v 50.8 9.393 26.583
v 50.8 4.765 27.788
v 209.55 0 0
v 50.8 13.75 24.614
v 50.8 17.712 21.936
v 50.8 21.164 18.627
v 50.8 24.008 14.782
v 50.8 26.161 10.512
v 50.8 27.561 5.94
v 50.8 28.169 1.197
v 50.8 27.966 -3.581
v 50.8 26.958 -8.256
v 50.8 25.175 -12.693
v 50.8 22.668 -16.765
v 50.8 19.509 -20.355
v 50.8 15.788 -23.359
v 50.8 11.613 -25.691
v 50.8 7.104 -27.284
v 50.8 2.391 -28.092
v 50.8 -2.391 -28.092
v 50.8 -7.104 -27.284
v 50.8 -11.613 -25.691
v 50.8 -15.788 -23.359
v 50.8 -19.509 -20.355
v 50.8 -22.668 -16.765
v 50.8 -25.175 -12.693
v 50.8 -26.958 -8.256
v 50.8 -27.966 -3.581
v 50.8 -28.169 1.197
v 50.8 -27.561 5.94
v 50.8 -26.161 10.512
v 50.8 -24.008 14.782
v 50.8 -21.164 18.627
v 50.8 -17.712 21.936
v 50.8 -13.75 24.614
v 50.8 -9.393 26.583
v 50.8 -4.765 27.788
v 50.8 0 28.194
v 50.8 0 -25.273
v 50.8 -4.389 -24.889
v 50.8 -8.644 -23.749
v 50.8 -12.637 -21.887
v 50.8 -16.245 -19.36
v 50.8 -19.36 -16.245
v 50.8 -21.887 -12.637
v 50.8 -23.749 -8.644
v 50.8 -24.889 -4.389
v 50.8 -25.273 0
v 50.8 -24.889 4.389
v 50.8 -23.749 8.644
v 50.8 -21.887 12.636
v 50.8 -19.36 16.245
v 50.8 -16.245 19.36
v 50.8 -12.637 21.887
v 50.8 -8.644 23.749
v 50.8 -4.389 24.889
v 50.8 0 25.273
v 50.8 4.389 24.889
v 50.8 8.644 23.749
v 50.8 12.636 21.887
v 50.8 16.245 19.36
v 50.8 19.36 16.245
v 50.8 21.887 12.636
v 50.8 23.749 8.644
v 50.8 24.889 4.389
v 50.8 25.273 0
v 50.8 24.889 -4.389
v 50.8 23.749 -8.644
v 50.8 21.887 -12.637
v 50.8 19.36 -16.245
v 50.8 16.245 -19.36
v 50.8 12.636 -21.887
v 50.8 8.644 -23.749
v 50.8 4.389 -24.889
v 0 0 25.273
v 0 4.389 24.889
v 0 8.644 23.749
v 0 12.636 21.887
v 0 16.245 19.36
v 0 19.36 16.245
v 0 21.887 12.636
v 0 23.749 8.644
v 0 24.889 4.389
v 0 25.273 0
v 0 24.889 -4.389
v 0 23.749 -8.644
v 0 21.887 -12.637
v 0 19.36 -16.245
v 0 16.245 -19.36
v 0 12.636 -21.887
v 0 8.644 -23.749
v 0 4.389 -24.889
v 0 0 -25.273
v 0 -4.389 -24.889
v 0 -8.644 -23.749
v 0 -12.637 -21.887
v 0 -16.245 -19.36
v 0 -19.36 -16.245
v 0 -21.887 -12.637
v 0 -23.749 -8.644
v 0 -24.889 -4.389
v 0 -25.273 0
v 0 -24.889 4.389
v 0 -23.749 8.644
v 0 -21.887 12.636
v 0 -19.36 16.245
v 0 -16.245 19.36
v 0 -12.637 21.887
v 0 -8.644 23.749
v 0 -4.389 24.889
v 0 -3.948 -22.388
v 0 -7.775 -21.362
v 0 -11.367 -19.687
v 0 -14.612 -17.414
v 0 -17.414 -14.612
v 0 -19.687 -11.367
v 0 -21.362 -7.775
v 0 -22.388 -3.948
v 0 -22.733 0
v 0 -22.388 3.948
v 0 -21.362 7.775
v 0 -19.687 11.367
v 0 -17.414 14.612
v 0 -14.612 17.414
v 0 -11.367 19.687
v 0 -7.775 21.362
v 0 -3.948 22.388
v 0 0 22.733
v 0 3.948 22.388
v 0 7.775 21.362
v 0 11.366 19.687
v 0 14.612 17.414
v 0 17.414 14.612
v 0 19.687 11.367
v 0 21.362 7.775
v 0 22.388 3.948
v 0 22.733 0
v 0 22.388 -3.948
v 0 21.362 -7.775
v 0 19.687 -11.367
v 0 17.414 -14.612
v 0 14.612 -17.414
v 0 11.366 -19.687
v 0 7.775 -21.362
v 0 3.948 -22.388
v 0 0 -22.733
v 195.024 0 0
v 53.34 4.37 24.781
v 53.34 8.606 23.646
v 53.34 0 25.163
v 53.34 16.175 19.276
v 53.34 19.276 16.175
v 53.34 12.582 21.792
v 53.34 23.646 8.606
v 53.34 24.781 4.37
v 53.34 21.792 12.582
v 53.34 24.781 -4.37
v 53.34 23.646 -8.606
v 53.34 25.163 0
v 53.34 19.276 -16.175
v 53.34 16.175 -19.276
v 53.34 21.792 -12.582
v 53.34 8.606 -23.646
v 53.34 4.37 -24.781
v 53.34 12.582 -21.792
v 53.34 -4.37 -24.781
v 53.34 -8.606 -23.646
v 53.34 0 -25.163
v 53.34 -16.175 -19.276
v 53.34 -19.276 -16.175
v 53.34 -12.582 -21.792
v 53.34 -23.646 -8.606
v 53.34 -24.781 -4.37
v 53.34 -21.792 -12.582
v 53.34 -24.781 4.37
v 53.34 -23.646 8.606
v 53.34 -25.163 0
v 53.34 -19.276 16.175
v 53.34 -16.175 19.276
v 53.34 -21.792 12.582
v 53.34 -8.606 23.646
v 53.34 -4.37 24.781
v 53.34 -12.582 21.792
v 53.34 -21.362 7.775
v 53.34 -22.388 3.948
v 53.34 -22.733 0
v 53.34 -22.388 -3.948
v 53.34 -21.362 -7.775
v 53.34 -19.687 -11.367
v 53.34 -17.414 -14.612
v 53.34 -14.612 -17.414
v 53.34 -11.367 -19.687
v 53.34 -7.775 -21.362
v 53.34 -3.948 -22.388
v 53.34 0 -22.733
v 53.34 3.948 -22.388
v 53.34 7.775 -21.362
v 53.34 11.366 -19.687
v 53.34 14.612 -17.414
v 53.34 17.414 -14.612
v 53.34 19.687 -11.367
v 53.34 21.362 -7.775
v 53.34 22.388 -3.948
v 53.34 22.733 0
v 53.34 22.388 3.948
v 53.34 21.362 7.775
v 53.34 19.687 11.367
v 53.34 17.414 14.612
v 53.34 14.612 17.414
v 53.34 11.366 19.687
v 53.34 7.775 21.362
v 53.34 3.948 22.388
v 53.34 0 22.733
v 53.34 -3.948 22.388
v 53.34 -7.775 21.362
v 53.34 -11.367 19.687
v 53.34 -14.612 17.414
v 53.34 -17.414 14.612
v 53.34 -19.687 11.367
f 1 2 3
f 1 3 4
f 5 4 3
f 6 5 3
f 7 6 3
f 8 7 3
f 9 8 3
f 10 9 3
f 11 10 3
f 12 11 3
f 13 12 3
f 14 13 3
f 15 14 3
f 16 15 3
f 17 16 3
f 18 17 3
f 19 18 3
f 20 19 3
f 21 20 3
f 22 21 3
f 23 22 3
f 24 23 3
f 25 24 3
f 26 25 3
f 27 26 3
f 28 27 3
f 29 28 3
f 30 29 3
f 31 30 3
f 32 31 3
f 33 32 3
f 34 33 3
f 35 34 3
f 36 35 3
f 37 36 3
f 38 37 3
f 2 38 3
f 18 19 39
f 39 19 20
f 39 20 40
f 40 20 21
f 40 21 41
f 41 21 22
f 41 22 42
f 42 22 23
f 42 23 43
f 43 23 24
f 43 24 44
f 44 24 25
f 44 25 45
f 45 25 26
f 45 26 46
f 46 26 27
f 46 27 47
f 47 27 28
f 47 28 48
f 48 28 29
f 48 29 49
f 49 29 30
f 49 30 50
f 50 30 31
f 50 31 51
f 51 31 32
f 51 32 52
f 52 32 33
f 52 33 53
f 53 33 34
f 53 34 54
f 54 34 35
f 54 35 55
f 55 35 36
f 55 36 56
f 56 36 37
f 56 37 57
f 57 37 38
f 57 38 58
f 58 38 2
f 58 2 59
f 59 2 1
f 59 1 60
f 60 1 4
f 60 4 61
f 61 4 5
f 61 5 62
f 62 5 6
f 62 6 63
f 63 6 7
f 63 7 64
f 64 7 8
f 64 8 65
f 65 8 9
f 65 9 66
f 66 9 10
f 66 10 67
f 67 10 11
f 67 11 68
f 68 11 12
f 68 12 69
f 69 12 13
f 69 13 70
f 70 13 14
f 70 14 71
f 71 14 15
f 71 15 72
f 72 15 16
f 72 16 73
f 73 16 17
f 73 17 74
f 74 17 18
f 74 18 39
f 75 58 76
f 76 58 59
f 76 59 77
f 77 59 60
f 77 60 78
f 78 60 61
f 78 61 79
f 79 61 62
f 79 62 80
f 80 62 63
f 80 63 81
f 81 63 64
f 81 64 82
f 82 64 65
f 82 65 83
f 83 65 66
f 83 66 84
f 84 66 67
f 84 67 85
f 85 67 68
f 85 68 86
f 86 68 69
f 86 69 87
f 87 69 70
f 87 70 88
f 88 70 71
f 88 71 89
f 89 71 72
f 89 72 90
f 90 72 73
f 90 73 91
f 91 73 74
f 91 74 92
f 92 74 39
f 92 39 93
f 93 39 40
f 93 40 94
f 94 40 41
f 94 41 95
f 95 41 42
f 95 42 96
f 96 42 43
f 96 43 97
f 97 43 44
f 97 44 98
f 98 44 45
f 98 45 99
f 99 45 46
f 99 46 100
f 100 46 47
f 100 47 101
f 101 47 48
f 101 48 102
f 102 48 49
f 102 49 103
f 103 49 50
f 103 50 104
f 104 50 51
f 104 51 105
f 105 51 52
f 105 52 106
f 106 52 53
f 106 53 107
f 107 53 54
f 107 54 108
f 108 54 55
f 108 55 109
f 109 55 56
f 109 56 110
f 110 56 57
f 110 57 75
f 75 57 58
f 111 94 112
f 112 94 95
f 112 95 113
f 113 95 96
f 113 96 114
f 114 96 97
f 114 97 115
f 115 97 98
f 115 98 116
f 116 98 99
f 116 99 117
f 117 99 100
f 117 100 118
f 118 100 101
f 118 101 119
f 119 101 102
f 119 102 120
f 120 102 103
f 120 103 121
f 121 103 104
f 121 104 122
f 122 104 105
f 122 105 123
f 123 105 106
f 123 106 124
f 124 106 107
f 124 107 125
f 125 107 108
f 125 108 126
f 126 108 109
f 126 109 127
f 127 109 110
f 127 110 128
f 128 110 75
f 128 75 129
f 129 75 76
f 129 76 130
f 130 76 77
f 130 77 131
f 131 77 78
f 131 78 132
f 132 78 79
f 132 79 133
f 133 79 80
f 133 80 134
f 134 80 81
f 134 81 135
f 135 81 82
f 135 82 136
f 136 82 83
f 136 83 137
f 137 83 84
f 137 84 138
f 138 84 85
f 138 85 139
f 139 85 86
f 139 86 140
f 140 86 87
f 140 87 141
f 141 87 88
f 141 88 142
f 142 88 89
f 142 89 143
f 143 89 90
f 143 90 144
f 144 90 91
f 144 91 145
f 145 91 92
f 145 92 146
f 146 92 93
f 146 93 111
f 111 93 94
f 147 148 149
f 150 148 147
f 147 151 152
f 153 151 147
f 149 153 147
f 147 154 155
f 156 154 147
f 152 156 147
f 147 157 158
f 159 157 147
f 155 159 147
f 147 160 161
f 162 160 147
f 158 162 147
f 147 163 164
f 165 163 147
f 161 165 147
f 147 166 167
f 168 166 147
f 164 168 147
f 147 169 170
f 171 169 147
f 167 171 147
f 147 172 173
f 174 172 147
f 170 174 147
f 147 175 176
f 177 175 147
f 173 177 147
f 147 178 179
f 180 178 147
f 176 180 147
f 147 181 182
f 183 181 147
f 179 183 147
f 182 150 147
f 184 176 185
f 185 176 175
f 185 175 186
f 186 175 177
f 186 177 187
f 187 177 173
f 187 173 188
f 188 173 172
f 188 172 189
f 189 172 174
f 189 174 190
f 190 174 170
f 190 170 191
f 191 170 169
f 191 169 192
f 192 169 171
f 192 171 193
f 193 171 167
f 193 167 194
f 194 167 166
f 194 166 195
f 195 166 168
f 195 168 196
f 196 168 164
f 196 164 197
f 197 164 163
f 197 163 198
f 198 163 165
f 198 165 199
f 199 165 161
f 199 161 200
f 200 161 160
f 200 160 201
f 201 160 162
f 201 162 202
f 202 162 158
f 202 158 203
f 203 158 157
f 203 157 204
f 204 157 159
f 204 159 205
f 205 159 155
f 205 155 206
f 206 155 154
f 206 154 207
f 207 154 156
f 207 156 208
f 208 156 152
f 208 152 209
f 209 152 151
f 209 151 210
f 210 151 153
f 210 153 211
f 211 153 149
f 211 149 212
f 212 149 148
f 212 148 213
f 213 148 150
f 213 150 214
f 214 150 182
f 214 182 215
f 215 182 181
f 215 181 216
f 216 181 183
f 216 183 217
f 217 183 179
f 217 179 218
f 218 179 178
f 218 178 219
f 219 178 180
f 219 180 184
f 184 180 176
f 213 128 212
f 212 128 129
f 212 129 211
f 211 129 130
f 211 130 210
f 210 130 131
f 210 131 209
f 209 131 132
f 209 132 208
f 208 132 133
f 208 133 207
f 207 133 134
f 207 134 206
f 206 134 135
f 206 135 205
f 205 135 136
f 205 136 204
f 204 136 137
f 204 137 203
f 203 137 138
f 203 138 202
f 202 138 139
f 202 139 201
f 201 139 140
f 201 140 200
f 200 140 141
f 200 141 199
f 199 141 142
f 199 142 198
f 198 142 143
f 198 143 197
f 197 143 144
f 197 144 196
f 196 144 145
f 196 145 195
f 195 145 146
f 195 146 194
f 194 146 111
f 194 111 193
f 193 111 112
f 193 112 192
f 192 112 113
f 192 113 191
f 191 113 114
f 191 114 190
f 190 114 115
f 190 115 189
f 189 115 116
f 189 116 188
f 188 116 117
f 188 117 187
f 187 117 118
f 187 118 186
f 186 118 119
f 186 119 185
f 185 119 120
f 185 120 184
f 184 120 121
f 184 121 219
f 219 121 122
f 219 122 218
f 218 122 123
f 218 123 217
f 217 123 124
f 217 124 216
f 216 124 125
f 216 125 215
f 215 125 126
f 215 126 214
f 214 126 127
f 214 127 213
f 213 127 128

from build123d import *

# Parameters (mm, degrees)
SHELL1_T = -2.54


with BuildPart() as part:
    # Sketch1 → Revolve2 (revolve)
    with BuildSketch(Plane(origin=(0, 0, 0), x_dir=(1, 0, 0), z_dir=(0, 1, 0))):
        Polygon((0, 0), (0, 25.273), (50.8, 25.273), (50.8, 28.194), (209.55, 0), align=None)
    revolve(axis=Axis((0, 0, 0), (1, 0, 0)))

    # Shell1
    shell1_openings = [part.faces().sort_by_distance(p)[0] for p in [
        (0, 0, 25.273),
    ]]
    offset(amount=SHELL1_T, openings=shell1_openings, kind=Kind.INTERSECTION)


solid = part.part
